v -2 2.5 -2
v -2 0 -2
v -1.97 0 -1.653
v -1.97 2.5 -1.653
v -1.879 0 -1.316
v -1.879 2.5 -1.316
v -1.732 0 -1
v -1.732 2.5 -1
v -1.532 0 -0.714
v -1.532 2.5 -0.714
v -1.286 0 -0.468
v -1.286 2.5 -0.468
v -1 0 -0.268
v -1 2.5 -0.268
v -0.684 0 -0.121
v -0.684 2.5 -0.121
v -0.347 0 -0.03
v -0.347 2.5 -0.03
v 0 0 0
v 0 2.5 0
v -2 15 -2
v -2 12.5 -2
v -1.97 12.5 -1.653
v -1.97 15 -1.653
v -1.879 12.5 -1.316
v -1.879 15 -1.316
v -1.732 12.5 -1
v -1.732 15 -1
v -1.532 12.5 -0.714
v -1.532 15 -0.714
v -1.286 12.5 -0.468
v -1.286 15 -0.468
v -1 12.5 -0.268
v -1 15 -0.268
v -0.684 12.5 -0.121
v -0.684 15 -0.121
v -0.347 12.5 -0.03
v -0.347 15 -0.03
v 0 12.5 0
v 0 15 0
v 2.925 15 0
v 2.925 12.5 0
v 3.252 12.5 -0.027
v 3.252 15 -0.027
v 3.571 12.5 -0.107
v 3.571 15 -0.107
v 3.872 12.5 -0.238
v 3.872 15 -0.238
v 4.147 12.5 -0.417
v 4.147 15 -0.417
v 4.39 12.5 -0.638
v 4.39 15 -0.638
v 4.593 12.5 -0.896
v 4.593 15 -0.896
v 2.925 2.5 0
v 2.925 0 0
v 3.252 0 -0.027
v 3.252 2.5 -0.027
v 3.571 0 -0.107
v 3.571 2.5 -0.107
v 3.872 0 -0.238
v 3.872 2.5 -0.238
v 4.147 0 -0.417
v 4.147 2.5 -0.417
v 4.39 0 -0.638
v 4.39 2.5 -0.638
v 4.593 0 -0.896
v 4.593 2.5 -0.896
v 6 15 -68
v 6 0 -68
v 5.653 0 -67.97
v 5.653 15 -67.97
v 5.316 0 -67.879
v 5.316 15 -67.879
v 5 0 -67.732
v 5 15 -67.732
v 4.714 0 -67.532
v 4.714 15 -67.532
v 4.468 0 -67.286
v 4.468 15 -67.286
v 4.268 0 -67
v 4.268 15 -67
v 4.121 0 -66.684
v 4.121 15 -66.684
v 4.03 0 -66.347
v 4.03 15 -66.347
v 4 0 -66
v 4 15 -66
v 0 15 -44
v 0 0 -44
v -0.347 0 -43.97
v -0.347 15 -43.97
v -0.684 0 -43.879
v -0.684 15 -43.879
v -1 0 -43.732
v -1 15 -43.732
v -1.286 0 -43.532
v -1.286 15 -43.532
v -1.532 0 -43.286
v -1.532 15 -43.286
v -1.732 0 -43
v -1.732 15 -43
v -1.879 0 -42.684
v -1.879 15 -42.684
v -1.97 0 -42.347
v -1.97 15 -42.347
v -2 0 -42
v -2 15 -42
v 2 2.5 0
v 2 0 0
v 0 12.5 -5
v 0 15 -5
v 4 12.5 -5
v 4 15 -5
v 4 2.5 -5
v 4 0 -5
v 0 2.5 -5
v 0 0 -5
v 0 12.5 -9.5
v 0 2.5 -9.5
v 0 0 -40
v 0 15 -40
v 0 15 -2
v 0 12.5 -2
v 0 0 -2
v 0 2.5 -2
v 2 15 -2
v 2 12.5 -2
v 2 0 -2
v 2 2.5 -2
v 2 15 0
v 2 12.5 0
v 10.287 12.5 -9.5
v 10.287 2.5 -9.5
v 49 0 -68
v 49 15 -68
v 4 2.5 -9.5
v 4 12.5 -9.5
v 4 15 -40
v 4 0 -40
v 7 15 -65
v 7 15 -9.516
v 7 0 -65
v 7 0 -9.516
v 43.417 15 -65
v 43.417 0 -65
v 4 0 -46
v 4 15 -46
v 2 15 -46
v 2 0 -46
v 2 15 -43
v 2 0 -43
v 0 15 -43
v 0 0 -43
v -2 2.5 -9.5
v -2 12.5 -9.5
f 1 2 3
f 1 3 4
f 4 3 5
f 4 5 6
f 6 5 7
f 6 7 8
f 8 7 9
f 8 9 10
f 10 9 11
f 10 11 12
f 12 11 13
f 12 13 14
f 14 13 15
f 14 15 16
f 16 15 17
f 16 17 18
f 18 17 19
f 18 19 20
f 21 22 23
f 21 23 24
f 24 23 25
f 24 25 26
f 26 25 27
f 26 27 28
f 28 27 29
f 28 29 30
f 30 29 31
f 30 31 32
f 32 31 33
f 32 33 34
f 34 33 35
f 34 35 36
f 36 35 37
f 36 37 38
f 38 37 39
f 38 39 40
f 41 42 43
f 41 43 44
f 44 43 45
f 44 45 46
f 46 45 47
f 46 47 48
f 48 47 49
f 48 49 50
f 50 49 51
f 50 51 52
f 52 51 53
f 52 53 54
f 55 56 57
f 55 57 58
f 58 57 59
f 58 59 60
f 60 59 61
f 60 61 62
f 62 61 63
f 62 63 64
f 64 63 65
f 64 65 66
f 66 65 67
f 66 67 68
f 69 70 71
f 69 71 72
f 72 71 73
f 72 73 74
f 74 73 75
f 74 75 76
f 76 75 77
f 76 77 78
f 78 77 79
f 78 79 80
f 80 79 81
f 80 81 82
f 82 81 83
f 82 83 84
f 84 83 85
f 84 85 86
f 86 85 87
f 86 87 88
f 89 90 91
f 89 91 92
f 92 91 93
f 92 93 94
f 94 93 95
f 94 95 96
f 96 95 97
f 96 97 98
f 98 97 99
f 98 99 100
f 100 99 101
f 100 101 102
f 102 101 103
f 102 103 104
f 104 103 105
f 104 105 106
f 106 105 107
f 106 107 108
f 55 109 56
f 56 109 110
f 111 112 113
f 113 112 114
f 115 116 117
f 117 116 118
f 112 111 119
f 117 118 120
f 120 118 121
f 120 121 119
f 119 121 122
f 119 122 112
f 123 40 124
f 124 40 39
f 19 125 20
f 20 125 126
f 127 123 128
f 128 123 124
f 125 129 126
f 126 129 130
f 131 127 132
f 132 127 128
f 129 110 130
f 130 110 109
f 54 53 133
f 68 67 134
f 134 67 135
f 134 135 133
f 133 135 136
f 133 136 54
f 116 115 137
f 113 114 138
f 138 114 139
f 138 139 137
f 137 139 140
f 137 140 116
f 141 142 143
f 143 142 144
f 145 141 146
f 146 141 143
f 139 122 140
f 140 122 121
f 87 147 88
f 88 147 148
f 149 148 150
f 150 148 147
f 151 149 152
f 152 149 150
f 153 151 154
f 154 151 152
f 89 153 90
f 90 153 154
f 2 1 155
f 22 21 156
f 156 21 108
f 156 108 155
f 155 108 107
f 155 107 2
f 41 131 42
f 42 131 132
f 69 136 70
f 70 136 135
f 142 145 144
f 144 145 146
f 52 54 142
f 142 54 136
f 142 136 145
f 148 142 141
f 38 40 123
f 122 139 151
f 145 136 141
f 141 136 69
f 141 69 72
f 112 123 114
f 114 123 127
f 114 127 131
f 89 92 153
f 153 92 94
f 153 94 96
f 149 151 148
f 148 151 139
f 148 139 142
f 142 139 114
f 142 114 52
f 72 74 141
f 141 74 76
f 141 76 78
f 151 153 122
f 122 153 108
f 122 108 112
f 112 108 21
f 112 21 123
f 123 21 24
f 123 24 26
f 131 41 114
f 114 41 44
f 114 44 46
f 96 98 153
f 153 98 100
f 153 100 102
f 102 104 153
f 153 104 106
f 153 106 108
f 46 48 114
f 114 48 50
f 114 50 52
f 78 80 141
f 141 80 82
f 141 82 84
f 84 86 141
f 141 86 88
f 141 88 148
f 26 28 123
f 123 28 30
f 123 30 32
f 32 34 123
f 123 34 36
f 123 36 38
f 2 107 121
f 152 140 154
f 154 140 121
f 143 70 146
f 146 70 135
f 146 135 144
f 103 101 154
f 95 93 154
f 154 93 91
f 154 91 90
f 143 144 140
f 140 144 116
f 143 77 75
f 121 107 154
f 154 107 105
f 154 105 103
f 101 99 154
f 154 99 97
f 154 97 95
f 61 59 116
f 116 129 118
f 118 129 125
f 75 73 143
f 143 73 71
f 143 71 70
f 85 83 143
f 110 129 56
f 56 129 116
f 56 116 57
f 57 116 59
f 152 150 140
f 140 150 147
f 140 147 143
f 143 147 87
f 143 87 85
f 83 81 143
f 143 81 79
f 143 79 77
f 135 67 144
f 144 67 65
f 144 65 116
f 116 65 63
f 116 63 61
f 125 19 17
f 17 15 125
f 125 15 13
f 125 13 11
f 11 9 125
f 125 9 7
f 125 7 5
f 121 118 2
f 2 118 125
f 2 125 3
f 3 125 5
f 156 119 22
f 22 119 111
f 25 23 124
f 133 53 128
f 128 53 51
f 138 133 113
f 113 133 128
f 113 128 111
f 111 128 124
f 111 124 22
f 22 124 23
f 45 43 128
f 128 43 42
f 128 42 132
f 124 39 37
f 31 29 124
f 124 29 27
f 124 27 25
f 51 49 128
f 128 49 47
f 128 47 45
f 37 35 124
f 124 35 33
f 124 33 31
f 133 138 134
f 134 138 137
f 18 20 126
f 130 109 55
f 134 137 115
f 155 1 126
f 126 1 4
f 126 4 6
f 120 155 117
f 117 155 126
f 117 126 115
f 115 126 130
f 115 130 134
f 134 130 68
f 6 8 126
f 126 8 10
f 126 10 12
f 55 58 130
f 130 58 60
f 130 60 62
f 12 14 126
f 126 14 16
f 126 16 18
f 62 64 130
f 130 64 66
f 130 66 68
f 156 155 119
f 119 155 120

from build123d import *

# Parameters (mm, degrees)
SKETCH2_W               = 4
SKETCH2_H               = 35
BOSS_EXTRUDE1_DEPTH     = 15
CUT_EXTRUDE1_DEPTH      = 87.313382508
CUT_EXTRUDE1_DEPTH_BACK = 15
SKETCH3_W               = 9.5
SKETCH3_H               = 10
FILLET1_R               = 2
FILLET2_R               = 2
FILLET3_R               = 2
FILLET4_R               = 2
FILLET5_R               = 2
FILLET6_R               = 2


with BuildPart() as part:
    # Sketch2 → Boss-Extrude1 (new body)
    with BuildSketch(Plane(origin=(0, 0, 0), x_dir=(1, 0, 0), z_dir=(0, 1, 0))):
        Polygon((0, 0), (0, 2), (2, 2), (2, 0), (4, 0), (49, 68), (4, 68), (4, 46), (2, 46), (2, 43), (0, 43), (0, 44), (-2, 44), (-2, 0), align=None)
        with Locations((2, 22.5)):
            Rectangle(SKETCH2_W, SKETCH2_H, mode=Mode.SUBTRACT)
        Polygon((7, 65), (43.417291153, 65), (7, 9.516238481), align=None, mode=Mode.SUBTRACT)
    extrude(amount=BOSS_EXTRUDE1_DEPTH)

    # Sketch3 → Cut-Extrude1 (cut, two sides: drawn at the far end of the back side and taken through both)
    with BuildSketch(Plane.ZY.offset(2).offset(-CUT_EXTRUDE1_DEPTH_BACK)):
        with Locations((-4.75, 7.5)):
            Rectangle(SKETCH3_W, SKETCH3_H)
    extrude(amount=CUT_EXTRUDE1_DEPTH + CUT_EXTRUDE1_DEPTH_BACK, mode=Mode.SUBTRACT)

    # Fillet1
    fillet1_edges = [part.edges().sort_by_distance(p)[0] for p in [
        (-2, 7.5, -44),
    ]]
    fillet(fillet1_edges, radius=FILLET1_R - 0.0001)  # a hair under: the kernel refuses the full size

    # Fillet2
    fillet2_edges = [part.edges().sort_by_distance(p)[0] for p in [
        (4, 7.5, -68),
    ]]
    fillet(fillet2_edges, radius=FILLET2_R)

    # Fillet3
    fillet3_edges = [part.edges().sort_by_distance(p)[0] for p in [
        (4, 1.25, 0),
    ]]
    fillet(fillet3_edges, radius=FILLET3_R)

    # Fillet4
    fillet4_edges = [part.edges().sort_by_distance(p)[0] for p in [
        (4, 13.75, 0),
    ]]
    fillet(fillet4_edges, radius=FILLET4_R)

    # Fillet5
    fillet5_edges = [part.edges().sort_by_distance(p)[0] for p in [
        (-2, 13.75, 0),
    ]]
    fillet(fillet5_edges, radius=FILLET5_R - 0.0001)  # a hair under: the kernel refuses the full size

    # Fillet6
    fillet6_edges = [part.edges().sort_by_distance(p)[0] for p in [
        (-2, 1.25, 0),
    ]]
    fillet(fillet6_edges, radius=FILLET6_R - 0.0001)  # a hair under: the kernel refuses the full size


solid = part.part
